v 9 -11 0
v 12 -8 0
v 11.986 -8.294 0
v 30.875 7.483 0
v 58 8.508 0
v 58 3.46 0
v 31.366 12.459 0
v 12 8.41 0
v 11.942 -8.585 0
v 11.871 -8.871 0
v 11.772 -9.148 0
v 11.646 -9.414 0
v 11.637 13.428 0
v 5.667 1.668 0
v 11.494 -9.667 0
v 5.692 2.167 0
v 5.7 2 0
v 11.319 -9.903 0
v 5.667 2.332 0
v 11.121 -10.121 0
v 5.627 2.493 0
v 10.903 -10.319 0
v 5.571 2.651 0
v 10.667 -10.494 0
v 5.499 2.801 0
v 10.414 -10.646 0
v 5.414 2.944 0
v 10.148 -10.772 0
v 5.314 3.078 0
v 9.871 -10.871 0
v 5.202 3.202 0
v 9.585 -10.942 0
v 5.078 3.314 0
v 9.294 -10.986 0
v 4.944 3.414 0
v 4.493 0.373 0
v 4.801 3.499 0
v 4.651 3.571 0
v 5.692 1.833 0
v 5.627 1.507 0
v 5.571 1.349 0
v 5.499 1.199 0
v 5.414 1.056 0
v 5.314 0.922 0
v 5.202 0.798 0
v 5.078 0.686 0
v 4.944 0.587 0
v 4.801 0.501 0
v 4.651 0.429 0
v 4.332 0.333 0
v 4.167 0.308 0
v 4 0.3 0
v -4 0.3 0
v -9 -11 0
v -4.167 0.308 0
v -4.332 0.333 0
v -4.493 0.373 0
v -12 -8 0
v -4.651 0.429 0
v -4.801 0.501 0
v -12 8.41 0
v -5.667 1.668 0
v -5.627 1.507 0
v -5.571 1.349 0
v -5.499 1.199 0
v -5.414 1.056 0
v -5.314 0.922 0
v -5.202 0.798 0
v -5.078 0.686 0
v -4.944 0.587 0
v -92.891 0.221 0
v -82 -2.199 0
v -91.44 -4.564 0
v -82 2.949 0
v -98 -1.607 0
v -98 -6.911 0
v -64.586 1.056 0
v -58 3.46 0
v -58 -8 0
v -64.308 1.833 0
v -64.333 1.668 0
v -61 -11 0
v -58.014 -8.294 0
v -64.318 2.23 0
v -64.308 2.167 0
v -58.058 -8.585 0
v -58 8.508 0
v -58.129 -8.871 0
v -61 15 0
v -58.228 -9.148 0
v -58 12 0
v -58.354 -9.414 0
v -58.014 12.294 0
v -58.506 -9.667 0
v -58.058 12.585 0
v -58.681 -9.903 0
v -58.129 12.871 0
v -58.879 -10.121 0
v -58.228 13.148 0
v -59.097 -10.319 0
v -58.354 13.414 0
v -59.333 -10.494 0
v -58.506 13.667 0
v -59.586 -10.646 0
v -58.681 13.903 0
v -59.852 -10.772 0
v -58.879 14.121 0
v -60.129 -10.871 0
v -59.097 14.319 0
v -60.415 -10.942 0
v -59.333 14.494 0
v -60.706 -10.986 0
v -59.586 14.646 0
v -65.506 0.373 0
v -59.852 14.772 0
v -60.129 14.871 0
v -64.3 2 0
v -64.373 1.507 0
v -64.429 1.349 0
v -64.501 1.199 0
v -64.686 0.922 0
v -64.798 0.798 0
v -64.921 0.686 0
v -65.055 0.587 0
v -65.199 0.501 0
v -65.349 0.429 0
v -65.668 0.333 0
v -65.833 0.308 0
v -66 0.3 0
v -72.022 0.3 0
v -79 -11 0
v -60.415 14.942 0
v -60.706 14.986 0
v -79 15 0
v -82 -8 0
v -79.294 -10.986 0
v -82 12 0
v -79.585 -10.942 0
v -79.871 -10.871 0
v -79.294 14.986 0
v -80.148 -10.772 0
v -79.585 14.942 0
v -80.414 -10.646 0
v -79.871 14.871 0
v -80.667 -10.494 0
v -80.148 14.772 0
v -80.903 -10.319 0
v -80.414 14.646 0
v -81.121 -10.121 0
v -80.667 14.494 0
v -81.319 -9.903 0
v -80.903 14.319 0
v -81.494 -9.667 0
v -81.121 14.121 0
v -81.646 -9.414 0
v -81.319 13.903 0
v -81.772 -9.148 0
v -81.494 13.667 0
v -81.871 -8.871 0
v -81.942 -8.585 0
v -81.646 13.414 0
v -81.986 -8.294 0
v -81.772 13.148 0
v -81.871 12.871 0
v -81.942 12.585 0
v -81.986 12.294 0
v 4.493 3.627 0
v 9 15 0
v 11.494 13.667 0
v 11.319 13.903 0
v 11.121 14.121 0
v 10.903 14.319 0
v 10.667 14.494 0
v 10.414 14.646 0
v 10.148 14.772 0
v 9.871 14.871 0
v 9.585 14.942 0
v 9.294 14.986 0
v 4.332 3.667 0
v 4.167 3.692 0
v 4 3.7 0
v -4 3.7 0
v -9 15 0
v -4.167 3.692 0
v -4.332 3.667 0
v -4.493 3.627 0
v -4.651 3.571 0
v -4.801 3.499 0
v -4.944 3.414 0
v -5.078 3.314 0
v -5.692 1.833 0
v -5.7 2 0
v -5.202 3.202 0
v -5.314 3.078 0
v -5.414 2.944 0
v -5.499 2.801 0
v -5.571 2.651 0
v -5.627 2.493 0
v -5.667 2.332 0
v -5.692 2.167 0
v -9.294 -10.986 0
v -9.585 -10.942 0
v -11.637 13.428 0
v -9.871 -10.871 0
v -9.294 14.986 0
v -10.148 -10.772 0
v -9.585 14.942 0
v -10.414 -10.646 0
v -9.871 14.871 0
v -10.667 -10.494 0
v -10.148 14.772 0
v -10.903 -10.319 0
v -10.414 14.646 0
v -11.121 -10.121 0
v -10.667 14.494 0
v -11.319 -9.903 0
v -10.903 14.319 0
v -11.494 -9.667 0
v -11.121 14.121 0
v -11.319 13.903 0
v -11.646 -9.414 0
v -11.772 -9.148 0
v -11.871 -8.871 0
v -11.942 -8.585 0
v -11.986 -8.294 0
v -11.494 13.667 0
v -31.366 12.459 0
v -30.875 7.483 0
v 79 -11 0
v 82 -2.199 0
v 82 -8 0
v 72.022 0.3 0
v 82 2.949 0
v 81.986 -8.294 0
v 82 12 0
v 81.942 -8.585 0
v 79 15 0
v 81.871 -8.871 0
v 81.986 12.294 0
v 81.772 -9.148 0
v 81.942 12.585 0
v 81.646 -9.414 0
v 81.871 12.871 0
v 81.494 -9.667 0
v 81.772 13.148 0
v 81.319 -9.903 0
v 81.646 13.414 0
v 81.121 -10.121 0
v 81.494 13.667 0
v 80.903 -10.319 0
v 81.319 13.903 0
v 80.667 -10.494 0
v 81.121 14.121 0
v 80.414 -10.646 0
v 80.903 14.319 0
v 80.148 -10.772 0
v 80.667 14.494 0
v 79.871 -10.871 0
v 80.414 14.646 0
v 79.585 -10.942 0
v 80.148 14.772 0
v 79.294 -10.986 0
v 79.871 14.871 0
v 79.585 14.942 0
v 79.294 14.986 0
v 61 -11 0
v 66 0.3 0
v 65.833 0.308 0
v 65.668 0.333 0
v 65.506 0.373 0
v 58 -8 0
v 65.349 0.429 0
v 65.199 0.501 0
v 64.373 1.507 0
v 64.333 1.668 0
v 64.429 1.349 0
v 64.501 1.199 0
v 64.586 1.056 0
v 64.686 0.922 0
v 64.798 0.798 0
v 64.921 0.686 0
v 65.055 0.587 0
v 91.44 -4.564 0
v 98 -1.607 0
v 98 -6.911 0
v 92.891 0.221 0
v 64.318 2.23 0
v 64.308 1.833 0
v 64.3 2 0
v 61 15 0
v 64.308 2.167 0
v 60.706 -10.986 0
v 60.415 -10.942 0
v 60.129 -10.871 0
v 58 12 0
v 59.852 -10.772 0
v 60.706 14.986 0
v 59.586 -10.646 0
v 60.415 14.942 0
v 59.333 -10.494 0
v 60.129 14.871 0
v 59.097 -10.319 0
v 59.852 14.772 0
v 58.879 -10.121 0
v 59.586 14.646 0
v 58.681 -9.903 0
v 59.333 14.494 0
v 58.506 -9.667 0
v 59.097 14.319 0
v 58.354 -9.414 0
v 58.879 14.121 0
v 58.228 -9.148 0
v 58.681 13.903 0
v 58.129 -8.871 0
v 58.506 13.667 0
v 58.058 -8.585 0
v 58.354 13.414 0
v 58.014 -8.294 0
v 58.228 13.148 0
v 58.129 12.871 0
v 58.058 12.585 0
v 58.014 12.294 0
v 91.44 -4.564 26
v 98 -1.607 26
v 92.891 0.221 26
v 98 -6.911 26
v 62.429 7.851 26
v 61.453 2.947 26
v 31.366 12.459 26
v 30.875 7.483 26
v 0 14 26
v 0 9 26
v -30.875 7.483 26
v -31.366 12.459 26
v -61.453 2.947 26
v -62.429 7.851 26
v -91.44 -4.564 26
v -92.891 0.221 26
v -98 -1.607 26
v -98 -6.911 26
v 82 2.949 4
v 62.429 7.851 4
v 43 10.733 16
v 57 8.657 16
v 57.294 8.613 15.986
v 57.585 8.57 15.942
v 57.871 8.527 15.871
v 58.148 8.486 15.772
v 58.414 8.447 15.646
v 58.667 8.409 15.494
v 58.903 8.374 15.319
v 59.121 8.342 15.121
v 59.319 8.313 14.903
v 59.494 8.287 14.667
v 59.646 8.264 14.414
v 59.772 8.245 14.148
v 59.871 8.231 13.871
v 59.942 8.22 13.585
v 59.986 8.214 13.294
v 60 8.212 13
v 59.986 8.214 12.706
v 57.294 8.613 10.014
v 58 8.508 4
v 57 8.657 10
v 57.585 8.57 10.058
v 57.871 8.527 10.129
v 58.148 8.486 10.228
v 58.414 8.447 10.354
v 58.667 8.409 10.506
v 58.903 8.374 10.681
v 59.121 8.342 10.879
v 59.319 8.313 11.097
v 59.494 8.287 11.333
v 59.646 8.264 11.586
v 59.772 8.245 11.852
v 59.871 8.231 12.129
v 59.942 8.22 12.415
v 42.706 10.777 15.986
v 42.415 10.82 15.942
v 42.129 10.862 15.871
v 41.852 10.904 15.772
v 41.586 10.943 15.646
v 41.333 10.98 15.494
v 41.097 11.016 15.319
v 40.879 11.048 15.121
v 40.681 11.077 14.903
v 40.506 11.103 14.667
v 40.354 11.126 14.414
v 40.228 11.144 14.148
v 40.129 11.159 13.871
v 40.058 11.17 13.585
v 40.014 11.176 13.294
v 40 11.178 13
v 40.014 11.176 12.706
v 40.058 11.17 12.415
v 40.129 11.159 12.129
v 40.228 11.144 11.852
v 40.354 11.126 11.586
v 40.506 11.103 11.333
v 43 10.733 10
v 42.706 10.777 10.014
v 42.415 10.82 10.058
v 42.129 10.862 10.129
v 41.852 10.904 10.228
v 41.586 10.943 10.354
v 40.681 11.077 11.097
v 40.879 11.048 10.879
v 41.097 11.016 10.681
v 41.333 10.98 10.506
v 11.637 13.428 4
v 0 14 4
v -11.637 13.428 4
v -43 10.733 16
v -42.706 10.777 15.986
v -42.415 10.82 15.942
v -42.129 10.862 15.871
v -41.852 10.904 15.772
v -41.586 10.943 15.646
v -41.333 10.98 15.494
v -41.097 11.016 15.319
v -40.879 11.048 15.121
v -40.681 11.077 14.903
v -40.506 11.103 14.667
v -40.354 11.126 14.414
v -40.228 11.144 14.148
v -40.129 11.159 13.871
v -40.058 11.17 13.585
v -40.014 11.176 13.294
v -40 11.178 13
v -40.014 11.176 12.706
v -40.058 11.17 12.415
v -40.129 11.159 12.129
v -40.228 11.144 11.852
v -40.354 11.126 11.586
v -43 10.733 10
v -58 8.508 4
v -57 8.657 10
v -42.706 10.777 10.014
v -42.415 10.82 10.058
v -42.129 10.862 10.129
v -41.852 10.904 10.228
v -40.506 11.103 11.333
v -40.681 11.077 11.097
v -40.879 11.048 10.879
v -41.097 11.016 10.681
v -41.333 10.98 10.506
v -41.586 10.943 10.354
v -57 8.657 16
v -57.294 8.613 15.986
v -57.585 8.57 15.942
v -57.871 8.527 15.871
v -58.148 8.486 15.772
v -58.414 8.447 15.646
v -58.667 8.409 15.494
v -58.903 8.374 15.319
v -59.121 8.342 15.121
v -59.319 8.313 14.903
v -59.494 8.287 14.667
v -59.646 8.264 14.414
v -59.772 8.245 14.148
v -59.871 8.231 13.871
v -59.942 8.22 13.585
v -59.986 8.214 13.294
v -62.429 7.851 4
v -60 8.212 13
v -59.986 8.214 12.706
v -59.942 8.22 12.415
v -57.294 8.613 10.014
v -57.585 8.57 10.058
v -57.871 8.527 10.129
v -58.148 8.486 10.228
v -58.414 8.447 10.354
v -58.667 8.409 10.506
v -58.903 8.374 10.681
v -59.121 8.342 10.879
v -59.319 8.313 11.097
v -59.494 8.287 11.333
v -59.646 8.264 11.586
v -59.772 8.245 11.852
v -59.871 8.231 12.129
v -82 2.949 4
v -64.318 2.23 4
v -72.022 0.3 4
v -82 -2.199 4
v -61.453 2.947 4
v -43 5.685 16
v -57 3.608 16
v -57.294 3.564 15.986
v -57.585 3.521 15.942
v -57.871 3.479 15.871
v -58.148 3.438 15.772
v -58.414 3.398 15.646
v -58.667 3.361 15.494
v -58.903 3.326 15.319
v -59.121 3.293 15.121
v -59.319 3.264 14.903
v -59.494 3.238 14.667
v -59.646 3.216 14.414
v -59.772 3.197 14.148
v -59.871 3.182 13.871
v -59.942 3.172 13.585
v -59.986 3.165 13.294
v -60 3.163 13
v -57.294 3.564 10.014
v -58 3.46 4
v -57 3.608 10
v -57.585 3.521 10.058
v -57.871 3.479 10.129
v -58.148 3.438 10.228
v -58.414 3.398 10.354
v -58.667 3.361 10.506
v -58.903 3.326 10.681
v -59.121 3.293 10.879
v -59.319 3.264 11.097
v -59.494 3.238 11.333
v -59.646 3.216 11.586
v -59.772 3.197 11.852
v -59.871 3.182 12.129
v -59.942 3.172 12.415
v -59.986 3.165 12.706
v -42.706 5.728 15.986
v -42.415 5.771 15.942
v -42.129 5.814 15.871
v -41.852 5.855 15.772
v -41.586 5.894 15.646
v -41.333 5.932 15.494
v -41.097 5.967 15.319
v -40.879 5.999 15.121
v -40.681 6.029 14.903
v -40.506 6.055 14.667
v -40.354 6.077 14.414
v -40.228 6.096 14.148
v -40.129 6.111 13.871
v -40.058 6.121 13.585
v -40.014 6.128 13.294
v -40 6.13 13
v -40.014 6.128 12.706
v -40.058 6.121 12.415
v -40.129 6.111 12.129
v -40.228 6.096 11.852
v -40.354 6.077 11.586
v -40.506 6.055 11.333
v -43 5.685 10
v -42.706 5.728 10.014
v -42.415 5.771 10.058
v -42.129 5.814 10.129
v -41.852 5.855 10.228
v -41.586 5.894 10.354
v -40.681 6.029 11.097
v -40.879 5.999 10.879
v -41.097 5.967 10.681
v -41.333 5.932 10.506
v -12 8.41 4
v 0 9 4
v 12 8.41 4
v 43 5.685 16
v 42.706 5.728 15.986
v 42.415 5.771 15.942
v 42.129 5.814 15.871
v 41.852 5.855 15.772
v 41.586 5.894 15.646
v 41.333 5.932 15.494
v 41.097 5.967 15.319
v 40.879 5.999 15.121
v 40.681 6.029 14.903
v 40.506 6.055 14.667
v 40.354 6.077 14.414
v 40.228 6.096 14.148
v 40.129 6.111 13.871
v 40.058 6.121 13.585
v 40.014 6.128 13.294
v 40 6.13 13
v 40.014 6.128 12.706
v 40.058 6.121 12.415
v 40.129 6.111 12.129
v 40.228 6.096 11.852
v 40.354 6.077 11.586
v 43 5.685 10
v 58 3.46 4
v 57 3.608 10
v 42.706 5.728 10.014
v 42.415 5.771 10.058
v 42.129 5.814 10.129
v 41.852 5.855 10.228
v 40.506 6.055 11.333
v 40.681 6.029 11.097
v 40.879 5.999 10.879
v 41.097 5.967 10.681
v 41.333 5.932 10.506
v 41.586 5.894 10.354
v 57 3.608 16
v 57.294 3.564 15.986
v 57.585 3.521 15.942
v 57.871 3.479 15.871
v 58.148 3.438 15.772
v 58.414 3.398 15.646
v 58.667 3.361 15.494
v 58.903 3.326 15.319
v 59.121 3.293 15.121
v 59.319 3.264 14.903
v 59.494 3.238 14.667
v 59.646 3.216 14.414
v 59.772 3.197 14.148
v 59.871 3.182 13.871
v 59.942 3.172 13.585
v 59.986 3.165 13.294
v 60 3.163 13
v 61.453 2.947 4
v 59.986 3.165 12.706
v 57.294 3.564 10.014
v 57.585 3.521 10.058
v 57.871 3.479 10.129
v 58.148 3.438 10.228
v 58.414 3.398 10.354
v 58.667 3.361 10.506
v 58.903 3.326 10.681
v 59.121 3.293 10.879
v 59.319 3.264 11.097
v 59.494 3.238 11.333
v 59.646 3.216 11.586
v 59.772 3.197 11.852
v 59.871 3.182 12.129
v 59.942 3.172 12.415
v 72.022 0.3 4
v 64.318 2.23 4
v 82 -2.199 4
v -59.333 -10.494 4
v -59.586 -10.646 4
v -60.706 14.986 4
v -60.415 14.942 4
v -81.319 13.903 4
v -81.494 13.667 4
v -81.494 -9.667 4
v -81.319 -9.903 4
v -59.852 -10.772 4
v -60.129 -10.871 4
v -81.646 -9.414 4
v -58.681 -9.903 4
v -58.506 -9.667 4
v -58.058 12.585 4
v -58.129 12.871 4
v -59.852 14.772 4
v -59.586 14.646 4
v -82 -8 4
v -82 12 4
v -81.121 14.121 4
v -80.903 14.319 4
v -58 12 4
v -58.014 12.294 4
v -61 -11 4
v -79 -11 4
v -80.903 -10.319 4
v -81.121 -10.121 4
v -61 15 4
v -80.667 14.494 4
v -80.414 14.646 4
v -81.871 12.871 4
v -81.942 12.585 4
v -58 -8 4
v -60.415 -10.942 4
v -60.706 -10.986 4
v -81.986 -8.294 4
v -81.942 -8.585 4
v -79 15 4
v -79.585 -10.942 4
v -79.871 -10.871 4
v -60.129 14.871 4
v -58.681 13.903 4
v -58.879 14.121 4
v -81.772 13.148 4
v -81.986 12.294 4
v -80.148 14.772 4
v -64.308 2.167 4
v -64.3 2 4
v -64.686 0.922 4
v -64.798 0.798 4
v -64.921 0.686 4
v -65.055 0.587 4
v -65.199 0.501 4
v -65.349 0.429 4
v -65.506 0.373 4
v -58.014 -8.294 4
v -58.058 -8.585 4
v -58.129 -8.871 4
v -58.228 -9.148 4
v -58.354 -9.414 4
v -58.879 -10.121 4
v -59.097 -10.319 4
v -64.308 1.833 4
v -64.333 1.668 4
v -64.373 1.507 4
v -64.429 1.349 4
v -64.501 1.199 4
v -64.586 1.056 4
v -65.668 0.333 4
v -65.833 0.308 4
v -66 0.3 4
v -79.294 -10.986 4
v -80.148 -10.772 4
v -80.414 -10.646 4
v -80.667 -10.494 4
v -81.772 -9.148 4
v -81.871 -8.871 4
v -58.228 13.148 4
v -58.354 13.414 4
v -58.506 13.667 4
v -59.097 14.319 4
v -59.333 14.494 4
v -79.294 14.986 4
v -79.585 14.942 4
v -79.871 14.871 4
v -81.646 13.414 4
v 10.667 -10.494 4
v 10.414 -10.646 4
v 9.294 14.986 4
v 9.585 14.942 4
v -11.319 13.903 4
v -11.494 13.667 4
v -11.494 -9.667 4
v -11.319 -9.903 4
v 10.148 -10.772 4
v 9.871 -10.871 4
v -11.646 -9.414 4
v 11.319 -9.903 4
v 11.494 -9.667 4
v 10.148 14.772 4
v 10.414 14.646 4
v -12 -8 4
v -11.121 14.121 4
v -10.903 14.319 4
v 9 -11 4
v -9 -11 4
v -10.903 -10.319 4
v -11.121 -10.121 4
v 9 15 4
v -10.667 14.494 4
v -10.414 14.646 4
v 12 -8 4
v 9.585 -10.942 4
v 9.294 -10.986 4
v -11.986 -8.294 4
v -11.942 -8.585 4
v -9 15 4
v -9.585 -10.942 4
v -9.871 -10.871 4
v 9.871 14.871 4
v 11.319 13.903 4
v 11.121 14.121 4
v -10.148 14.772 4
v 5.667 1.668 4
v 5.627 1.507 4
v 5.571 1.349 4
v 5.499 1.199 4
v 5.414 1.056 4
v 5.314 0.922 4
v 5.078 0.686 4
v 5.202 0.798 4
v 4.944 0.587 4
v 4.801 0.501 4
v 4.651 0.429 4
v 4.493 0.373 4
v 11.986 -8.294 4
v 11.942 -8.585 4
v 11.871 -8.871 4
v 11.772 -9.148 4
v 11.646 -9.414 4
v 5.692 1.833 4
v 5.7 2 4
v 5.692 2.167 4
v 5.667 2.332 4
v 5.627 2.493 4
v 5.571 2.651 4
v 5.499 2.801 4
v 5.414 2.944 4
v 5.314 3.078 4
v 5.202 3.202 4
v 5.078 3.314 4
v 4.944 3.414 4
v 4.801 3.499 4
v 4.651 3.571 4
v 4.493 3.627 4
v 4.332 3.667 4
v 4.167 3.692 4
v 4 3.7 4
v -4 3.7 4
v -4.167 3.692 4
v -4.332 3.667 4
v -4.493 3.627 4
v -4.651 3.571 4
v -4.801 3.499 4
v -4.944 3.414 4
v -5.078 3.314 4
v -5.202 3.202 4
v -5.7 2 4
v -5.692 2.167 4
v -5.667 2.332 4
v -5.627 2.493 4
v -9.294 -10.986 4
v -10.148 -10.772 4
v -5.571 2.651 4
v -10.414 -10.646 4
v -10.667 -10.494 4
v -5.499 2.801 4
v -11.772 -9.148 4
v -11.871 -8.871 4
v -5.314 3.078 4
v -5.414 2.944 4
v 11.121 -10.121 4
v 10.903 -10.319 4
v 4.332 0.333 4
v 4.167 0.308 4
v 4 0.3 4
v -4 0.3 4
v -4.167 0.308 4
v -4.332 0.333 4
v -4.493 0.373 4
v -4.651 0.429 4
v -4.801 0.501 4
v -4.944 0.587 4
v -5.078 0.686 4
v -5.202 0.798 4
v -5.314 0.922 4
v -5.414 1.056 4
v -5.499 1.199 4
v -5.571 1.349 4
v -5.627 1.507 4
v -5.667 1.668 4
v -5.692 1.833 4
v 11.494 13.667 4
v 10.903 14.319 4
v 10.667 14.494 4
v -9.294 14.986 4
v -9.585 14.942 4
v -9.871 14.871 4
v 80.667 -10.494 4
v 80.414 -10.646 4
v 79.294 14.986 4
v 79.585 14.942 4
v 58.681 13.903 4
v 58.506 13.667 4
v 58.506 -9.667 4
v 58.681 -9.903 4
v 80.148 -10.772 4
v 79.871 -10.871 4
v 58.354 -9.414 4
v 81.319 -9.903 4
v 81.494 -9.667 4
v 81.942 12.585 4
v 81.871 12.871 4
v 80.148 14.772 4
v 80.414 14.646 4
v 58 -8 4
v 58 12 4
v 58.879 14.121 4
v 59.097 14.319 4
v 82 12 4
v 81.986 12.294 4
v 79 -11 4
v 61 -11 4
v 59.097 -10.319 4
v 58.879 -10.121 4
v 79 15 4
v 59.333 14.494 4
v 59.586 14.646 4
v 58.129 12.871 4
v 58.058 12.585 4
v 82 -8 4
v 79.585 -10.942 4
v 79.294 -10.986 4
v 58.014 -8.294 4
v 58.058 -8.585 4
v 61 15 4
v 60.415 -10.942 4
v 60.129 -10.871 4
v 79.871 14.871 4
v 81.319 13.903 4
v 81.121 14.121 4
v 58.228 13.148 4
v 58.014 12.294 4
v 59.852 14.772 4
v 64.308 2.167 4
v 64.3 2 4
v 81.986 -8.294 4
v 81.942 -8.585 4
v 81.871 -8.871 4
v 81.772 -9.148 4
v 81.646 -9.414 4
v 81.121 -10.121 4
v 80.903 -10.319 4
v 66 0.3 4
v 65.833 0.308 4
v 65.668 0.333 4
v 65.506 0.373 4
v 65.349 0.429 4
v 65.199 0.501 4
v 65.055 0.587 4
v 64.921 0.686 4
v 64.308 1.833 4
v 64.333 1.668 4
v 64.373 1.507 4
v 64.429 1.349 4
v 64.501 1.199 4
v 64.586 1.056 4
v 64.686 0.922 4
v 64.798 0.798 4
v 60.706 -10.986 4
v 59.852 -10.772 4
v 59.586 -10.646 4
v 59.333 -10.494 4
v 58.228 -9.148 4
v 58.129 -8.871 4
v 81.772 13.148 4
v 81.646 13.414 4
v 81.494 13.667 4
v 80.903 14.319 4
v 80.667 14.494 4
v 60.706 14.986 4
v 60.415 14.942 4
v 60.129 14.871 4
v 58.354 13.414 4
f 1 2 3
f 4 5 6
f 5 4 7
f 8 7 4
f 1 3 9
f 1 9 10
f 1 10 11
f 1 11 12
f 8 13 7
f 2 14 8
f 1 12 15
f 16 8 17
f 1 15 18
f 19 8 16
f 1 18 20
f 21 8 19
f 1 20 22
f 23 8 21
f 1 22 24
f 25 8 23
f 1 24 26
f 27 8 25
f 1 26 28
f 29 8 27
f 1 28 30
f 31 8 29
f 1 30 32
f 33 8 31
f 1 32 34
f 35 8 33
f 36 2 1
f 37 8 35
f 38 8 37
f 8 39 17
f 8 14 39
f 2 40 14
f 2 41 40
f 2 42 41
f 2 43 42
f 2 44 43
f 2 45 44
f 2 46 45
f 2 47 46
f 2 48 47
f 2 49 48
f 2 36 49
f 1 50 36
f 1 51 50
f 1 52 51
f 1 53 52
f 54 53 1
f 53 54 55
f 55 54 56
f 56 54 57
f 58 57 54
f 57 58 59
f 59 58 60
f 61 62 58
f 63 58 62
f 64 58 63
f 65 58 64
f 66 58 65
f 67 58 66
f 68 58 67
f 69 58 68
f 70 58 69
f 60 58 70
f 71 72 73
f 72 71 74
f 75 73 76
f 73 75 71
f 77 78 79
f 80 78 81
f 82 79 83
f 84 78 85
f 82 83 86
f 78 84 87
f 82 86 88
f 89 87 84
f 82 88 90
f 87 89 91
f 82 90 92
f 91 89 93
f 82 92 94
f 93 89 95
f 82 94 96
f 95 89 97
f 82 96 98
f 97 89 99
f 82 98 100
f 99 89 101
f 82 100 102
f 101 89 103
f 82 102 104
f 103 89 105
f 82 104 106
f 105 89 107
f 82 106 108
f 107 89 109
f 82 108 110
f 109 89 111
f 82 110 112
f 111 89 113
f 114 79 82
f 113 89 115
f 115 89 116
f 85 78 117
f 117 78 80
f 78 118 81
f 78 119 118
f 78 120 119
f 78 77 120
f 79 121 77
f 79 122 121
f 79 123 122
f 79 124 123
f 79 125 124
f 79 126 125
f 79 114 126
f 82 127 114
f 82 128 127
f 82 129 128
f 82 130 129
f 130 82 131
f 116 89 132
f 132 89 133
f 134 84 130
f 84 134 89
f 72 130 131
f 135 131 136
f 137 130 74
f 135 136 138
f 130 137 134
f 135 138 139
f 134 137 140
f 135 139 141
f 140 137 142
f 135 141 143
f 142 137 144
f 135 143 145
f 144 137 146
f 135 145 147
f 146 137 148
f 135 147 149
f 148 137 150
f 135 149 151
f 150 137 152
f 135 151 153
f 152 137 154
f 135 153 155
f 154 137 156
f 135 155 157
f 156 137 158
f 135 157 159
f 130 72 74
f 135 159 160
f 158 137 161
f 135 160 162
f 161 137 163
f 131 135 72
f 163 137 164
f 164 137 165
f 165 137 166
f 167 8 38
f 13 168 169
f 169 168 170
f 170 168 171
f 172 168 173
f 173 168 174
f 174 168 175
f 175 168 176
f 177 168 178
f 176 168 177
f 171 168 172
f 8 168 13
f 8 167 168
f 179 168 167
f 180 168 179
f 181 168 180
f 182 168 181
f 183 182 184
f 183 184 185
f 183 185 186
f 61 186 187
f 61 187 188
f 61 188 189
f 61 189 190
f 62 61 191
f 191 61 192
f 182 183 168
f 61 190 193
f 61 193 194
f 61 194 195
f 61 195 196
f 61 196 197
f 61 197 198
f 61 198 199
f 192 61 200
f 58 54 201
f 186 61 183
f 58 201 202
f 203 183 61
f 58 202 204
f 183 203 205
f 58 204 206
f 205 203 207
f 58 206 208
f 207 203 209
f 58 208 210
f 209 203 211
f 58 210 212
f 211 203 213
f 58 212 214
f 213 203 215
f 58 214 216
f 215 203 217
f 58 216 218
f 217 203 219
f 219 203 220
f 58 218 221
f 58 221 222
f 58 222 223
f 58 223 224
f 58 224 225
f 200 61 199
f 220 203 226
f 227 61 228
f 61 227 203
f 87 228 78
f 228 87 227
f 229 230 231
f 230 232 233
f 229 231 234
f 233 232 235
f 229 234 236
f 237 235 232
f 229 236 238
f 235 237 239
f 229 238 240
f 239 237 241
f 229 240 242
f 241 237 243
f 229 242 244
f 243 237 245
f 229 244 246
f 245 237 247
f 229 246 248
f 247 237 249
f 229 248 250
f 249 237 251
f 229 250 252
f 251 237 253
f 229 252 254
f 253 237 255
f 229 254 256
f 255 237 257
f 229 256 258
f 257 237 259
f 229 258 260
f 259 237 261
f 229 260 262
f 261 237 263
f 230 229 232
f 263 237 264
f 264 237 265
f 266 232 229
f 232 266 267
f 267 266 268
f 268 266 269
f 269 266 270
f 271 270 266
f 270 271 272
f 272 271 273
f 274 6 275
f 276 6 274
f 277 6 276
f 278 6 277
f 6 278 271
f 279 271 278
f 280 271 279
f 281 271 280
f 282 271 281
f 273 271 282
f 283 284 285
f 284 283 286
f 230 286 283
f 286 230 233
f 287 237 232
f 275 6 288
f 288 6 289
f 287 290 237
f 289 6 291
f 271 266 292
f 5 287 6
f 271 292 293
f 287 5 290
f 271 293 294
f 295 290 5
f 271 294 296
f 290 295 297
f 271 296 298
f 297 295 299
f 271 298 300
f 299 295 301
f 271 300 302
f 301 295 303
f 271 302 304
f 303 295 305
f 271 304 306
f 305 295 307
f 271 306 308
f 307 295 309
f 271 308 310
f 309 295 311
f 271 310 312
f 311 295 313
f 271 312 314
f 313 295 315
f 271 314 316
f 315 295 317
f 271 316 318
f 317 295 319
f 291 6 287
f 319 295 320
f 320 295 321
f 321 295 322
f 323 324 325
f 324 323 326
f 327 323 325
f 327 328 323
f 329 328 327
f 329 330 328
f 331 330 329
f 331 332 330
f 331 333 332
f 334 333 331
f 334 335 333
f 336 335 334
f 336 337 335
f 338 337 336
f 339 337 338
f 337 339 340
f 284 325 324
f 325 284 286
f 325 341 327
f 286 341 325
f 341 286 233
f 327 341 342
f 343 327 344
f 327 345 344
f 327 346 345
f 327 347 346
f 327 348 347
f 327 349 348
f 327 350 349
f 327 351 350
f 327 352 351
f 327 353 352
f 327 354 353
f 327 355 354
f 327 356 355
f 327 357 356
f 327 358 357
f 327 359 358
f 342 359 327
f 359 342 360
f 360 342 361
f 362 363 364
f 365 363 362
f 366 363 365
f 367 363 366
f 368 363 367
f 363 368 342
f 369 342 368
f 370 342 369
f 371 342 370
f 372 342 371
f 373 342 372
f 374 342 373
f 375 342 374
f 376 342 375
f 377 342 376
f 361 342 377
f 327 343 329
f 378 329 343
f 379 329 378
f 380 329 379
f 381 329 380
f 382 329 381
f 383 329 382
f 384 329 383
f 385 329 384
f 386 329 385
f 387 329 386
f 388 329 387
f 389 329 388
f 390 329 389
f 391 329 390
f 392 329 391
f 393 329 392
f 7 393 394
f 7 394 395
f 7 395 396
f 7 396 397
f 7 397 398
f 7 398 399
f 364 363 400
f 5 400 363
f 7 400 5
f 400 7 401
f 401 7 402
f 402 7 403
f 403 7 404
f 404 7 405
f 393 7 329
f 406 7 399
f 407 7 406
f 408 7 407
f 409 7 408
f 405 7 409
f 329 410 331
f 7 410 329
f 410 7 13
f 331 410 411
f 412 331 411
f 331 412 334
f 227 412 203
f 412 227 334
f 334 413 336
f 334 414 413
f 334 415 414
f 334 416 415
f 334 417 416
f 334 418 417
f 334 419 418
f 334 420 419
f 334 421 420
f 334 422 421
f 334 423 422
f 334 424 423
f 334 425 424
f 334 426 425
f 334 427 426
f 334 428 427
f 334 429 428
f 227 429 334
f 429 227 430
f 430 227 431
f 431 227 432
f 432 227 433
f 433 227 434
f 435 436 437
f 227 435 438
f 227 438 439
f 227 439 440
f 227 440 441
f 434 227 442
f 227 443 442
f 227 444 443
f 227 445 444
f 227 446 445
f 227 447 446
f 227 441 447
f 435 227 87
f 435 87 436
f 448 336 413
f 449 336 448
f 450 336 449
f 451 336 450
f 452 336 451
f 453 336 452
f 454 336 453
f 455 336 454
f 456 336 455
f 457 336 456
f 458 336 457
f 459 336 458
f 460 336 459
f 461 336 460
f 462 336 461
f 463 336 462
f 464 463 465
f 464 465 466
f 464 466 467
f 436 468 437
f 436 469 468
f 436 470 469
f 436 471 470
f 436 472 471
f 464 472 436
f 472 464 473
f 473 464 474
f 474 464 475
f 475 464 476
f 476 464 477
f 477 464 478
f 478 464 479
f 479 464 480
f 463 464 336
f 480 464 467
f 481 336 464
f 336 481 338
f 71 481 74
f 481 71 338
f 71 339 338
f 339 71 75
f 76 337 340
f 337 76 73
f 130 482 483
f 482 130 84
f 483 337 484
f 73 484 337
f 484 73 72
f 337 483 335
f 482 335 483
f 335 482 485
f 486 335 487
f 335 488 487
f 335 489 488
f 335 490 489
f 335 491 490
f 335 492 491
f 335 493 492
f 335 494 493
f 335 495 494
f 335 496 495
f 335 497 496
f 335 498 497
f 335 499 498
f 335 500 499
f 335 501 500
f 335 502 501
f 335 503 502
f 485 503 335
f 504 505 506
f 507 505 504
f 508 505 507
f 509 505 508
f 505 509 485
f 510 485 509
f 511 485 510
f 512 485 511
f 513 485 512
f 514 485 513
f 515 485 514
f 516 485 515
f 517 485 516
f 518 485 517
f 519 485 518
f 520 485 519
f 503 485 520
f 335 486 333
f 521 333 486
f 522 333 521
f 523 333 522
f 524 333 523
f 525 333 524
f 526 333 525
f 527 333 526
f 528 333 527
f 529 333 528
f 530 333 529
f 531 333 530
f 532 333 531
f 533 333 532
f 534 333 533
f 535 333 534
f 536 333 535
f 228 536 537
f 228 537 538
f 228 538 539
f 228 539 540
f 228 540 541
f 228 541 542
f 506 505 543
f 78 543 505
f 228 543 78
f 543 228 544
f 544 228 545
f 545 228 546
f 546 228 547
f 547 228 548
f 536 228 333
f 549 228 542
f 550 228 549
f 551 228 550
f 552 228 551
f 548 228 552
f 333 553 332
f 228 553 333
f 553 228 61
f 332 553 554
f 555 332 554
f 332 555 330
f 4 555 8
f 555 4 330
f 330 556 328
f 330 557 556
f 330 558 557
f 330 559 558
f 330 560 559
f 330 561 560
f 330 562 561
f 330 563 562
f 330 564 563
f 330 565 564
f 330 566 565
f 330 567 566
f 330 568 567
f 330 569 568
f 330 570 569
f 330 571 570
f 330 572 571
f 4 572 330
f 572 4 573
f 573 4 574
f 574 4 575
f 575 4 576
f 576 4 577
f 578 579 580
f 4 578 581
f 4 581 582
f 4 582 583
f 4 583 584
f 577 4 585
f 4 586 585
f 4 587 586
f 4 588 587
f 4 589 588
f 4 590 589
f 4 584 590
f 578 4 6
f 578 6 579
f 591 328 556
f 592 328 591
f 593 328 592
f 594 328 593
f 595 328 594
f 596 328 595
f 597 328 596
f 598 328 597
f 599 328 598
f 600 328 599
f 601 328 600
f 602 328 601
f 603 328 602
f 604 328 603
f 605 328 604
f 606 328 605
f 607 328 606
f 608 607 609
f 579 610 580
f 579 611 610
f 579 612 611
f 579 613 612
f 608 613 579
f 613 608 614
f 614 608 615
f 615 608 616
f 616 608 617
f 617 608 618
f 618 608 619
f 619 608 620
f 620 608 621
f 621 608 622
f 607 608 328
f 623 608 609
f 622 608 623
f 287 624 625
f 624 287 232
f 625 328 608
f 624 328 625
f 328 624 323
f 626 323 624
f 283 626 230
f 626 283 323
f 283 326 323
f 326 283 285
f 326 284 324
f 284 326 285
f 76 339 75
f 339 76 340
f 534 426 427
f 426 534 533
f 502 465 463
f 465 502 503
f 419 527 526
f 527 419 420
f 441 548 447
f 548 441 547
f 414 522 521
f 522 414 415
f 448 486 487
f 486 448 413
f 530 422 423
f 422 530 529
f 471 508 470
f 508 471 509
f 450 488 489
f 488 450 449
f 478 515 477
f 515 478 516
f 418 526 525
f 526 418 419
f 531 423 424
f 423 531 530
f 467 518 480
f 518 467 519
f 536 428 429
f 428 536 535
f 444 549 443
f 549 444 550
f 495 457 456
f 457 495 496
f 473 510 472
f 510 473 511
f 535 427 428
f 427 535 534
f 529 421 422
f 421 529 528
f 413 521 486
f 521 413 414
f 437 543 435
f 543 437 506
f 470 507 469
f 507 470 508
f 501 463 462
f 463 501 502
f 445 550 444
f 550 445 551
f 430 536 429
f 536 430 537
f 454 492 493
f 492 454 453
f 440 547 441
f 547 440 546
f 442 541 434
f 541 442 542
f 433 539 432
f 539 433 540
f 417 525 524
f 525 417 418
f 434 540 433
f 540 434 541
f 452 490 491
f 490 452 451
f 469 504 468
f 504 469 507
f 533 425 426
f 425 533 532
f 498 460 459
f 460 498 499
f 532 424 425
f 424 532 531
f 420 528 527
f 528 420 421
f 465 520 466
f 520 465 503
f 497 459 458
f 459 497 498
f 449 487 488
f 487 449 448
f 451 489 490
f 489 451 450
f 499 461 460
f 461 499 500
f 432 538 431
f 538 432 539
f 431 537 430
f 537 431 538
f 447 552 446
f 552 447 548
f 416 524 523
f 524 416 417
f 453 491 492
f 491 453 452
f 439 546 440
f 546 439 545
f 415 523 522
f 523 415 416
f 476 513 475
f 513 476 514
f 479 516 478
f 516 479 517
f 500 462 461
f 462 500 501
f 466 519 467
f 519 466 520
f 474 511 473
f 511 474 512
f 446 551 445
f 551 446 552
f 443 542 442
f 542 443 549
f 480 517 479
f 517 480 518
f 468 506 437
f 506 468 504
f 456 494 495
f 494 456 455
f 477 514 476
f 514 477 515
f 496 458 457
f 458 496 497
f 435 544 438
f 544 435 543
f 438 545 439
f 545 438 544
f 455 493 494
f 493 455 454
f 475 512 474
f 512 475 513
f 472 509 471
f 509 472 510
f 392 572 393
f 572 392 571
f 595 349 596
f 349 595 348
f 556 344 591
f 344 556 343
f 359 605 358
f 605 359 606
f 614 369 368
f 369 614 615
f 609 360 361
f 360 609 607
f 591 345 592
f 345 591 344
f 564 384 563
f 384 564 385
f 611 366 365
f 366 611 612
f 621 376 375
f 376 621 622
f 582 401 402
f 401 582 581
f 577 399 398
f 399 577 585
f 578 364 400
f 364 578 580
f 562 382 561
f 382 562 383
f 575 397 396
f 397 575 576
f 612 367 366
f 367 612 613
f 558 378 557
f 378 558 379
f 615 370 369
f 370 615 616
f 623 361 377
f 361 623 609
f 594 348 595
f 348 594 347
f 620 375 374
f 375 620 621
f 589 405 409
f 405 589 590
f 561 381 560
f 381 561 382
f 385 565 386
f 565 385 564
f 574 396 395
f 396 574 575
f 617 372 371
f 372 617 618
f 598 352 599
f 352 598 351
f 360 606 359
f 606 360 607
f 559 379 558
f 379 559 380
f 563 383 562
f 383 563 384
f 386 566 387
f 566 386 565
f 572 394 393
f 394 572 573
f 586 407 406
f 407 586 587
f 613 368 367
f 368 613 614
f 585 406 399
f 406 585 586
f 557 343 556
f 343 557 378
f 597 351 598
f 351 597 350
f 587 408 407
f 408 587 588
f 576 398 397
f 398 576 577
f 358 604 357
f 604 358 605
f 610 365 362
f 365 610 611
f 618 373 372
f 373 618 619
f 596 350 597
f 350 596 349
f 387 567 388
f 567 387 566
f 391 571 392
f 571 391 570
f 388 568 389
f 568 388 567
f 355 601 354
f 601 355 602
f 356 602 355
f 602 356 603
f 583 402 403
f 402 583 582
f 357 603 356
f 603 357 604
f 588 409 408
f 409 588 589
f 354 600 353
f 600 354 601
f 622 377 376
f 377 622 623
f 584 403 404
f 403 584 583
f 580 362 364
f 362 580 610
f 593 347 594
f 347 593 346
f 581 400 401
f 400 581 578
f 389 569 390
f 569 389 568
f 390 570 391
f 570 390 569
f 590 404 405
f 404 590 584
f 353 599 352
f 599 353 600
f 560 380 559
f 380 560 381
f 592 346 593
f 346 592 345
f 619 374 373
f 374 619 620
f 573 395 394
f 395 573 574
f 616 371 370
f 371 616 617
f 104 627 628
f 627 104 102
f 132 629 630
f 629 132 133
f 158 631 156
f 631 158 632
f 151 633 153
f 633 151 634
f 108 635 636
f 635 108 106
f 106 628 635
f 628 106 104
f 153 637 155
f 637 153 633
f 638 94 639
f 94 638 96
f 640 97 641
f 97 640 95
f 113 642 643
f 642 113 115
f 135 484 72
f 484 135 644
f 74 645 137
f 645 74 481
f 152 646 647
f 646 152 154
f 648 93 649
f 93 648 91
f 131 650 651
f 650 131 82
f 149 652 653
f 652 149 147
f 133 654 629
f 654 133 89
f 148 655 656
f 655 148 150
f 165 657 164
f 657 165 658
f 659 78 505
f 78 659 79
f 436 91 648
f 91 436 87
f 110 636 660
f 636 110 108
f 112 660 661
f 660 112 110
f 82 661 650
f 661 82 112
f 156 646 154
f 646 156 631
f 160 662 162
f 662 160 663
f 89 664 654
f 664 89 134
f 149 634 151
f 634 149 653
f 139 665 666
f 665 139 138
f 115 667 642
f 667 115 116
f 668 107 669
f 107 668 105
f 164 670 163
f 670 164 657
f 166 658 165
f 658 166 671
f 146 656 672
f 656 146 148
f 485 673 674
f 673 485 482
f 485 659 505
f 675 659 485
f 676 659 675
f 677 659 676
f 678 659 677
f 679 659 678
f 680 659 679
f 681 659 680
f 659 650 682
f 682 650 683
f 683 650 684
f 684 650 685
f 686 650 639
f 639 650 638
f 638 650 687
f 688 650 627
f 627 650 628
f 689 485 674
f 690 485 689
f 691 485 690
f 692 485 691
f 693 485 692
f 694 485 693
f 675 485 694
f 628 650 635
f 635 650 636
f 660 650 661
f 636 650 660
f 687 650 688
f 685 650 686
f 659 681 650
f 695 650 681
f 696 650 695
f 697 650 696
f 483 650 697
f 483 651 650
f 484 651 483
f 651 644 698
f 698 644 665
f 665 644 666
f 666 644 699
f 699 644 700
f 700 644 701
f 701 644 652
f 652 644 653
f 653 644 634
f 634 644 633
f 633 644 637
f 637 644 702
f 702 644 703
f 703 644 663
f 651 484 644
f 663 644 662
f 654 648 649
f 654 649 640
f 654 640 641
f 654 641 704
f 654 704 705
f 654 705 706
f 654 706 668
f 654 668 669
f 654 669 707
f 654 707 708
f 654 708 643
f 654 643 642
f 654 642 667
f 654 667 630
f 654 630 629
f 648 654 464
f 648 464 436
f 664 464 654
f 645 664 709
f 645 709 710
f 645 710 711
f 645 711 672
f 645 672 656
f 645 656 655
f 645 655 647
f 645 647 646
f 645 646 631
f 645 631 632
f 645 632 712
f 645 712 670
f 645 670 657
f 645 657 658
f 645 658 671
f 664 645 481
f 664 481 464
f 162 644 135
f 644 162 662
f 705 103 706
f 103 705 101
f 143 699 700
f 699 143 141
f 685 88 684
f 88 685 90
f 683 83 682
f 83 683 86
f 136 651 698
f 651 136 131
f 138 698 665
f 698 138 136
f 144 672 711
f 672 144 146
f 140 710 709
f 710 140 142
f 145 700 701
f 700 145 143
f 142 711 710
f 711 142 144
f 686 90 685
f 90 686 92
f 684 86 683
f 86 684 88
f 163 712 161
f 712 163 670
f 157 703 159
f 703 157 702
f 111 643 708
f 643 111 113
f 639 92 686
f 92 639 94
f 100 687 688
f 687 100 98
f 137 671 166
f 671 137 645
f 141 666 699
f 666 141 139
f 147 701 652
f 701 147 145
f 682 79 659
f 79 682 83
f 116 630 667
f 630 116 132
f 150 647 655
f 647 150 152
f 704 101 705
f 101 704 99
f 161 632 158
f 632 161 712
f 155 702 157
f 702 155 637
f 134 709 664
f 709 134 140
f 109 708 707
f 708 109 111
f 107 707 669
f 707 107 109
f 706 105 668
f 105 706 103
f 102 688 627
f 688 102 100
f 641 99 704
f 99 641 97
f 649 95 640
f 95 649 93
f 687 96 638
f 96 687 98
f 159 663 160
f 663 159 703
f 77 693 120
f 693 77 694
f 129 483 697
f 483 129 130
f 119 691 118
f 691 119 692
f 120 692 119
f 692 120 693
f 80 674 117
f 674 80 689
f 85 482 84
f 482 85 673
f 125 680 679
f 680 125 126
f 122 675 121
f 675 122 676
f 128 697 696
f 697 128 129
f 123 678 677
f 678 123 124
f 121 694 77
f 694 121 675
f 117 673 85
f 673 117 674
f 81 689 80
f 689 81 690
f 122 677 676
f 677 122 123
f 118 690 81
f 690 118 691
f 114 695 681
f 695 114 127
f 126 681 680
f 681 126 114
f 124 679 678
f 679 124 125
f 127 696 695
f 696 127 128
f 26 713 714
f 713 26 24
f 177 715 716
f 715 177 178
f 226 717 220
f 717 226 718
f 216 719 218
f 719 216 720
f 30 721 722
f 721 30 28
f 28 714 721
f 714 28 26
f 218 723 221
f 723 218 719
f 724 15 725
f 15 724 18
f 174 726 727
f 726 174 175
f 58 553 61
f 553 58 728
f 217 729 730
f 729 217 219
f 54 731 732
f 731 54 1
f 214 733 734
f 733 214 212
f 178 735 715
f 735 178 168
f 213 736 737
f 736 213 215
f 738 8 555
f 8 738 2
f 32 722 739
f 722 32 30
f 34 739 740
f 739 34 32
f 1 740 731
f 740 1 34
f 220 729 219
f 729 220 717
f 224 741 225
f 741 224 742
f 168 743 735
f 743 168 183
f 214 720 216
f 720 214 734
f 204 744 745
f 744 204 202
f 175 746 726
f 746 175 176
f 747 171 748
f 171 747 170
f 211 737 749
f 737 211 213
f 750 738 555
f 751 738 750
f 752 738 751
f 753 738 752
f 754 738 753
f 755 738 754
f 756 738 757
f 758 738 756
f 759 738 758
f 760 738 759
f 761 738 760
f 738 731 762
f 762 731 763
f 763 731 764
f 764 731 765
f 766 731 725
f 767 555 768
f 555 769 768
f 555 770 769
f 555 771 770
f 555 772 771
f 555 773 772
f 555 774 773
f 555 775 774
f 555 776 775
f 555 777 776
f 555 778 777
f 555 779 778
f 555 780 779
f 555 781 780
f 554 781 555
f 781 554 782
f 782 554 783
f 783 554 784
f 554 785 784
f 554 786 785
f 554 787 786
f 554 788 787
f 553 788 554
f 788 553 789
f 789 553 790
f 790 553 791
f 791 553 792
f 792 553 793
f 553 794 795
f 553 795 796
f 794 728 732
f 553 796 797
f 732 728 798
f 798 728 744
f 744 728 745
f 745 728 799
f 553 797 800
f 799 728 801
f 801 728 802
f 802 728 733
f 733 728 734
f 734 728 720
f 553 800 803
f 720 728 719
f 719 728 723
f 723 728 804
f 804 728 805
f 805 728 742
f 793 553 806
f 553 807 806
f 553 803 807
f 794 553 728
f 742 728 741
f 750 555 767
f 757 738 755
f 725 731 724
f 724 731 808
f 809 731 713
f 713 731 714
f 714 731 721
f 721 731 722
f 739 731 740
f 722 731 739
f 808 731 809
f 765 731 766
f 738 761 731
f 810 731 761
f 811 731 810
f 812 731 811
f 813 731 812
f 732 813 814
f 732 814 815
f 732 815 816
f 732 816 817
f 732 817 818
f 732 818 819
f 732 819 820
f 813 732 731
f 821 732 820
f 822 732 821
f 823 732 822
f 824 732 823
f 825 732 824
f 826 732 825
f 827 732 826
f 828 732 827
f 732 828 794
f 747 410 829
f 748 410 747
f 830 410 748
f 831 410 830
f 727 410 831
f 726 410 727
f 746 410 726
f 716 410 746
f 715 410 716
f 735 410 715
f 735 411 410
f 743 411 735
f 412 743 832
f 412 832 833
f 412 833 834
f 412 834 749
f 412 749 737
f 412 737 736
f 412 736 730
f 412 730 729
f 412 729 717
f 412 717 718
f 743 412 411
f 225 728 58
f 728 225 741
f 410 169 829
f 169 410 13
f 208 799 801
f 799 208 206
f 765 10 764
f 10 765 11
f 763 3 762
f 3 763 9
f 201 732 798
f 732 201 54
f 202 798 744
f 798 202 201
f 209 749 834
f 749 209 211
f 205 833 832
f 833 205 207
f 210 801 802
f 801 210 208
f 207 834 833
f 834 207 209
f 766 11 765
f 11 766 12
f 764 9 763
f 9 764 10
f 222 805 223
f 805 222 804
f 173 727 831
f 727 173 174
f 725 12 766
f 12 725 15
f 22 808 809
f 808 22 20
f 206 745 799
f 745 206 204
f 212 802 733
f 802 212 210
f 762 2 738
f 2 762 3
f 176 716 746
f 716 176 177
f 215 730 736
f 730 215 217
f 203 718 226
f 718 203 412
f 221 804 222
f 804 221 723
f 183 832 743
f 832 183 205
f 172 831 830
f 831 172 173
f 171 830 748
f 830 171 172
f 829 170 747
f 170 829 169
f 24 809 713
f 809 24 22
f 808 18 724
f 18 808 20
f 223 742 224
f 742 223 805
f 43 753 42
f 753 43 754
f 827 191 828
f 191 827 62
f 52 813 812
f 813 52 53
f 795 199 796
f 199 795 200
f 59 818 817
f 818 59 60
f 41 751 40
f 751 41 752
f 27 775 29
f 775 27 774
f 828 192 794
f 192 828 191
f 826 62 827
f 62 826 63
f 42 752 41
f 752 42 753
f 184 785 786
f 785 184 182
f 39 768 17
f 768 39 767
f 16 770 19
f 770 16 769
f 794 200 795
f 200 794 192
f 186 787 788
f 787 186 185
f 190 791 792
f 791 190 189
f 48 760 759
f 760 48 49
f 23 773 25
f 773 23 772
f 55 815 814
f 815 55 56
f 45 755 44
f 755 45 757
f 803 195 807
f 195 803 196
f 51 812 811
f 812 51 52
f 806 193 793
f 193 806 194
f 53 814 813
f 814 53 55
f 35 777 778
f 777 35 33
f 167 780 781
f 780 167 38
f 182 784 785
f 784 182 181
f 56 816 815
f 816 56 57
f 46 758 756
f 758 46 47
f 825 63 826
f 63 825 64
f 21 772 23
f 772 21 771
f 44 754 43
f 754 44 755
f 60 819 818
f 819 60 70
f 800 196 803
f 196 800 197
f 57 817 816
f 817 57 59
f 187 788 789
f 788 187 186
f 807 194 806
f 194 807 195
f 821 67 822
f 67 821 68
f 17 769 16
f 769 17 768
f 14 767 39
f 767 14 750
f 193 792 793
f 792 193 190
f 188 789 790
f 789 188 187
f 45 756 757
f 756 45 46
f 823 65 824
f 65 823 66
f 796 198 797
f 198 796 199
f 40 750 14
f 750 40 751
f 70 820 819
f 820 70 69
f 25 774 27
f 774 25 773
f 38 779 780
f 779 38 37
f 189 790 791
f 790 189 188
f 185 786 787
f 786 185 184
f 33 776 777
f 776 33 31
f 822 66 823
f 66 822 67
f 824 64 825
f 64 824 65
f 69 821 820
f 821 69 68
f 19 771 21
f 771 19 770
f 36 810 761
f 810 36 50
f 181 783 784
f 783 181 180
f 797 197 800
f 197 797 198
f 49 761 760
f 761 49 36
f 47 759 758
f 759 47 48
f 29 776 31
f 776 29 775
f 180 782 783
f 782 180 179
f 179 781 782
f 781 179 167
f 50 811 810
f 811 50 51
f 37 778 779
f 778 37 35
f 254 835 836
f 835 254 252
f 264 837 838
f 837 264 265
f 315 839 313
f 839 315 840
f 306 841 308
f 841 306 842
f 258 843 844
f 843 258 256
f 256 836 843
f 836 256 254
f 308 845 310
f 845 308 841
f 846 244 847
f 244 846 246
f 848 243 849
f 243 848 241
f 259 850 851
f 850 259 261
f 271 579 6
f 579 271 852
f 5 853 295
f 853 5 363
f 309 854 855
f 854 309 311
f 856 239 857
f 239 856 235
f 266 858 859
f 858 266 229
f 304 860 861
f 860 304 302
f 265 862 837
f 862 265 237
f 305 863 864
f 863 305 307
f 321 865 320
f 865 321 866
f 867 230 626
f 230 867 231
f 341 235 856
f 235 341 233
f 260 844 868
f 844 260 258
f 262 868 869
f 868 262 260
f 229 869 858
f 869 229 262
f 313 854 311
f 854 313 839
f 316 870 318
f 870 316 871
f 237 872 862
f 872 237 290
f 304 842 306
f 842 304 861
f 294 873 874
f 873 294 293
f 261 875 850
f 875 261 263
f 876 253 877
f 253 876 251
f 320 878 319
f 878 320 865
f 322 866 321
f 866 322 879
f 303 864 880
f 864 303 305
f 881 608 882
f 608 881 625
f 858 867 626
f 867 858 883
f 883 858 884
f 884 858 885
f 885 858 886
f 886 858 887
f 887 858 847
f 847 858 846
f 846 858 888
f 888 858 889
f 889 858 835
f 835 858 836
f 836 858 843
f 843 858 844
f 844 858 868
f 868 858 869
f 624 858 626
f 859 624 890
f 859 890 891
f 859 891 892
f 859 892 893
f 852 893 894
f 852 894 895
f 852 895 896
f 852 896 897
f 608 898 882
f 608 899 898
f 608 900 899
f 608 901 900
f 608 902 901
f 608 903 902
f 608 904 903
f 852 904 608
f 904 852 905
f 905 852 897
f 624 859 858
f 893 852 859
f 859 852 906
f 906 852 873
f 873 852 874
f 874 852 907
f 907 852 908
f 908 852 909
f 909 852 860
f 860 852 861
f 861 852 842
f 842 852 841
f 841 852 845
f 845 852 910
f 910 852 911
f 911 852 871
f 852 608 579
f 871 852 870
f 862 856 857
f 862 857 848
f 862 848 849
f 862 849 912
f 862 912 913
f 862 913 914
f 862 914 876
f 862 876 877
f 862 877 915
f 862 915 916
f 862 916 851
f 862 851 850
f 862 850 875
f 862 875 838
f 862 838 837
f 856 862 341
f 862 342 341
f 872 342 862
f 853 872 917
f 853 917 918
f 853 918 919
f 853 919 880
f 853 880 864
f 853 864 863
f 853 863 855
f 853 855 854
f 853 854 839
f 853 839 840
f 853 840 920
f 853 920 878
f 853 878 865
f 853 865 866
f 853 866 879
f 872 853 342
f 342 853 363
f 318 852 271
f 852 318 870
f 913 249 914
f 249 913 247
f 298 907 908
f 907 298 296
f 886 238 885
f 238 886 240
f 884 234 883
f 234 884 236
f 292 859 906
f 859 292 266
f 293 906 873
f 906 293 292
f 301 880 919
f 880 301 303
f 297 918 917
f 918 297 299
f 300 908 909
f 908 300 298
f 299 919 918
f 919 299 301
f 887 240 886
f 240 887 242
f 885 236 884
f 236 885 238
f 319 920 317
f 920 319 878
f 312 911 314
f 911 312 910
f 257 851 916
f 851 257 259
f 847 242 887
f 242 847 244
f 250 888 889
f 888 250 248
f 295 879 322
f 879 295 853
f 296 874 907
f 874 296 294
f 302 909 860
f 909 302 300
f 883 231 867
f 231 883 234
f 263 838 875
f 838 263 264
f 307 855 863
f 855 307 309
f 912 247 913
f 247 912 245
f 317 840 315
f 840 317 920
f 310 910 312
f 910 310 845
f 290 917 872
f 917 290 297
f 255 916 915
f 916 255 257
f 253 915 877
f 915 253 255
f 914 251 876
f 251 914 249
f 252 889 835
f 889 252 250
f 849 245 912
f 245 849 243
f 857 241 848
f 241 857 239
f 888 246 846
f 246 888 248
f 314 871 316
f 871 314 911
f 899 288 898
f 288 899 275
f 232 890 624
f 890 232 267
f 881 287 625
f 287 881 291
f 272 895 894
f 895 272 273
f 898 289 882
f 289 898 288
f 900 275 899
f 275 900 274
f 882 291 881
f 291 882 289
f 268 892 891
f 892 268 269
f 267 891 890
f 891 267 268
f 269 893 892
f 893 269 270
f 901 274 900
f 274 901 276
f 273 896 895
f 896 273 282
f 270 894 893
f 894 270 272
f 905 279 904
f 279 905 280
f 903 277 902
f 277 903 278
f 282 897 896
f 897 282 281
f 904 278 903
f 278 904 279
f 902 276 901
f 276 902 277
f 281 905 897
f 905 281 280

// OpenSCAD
// file: common.scad
// KARAKURI shared parameters and helpers
// All dimensions in millimetres. Holes are printed undersize-safe:
// M3 through 3.4, M4 through 4.5, M2.5 through 2.9, quarter-inch 6.6.

$fn = 64;

m2_5 = 2.9;
m3 = 3.4;
m4 = 4.5;
quarter_inch = 6.6;

module rounded_plate(x, y, t, r = 8) {
    linear_extrude(t)
        offset(r = r) offset(delta = -r)
            square([x, y], center = true);
}

module hole(d, h) {
    translate([0, 0, -0.5]) cylinder(d = d, h = h + 1);
}

module slot(d, len, h) {
    translate([0, 0, -0.5])
        linear_extrude(h + 1)
            hull() {
                translate([-len / 2, 0]) circle(d = d);
                translate([ len / 2, 0]) circle(d = d);
            }
}

module four_holes(dx, dy, d, h) {
    for (sx = [-1, 1], sy = [-1, 1])
        translate([sx * dx / 2, sy * dy / 2, 0]) hole(d, h);
}
// main file
// Front bumper. Curved strip with two microswitch pockets so contact
// is a backup to the camera and cliff sensors. The slotted tabs give
// a few millimetres of float to press the switches. PETG works; TPU
// is even better. Print lying on its back face.

include <common.scad>

bump_w = 196;
bump_h = 26;
bump_t = 5;
arc_r = 320;

module bumper_front() {
    difference() {
        // Curved face
        intersection() {
            translate([0, -arc_r + 14, 0])
                linear_extrude(bump_h)
                    difference() {
                        circle(r = arc_r);
                        circle(r = arc_r - bump_t);
                    }
            translate([0, 0, bump_h / 2]) cube([bump_w, 40, bump_h], center = true);
        }
        // Microswitch lever windows
        for (x = [-50, 50])
            translate([x, 12, bump_h / 2])
                rotate([90, 0, 0]) slot(6, 14, 20);
    }
    // Mount tabs with float slots
    for (x = [-70, 0, 70])
        translate([x, 2, 0])
            difference() {
                rounded_plate(24, 26, 4, 3);
                slot(m3, 8, 4);
            }
}

bumper_front();
